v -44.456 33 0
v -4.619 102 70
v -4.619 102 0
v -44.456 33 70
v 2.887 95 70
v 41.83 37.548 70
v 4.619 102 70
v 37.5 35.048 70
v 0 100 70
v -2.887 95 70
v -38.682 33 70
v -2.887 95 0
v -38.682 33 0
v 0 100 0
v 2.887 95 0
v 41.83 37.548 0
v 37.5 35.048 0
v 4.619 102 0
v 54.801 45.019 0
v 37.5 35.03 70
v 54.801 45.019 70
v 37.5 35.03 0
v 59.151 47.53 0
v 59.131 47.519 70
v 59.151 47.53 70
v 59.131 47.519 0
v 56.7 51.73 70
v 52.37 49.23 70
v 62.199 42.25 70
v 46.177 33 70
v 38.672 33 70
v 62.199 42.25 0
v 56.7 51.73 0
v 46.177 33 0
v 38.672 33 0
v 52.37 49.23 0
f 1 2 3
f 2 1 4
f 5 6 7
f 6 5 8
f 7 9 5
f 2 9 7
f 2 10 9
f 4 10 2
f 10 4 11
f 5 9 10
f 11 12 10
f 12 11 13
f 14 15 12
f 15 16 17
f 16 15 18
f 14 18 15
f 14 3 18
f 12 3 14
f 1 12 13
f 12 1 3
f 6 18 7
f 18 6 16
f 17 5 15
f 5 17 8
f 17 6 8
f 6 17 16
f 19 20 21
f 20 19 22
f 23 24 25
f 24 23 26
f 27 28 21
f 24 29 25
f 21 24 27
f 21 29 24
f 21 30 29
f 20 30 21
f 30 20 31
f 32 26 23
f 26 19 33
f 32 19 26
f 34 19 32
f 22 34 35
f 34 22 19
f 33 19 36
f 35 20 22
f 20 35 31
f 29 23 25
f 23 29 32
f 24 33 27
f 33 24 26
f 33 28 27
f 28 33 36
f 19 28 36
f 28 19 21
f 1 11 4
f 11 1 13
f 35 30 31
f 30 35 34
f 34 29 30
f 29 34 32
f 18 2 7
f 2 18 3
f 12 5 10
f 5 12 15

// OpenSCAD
module yun(){
translate([0,100,0])
rotate(a=[0,0,-30])
translate([-5,-85,0])
cube([5,90,70]);


translate([0,100,0])
rotate(a=[0,0,30])
translate([0,-75,0])
cube([5,80,70]);

translate([40,30.7,0])
rotate(a=[0,0,-60])
translate([-5,0,0])
cube([15,25,70]);

translate([59.2,47.4,0])
rotate(a=[0,0,30])
translate([-5,0,0])
cube([5,5,70]);
    
}
difference(){
    yun();
    translate([-100,22,-0.5])
    cube([200,11,71]);
translate([45,15,-0.5])
rotate(a=[0,0,30])
cube([30,15,71]);
translate([-5,102,-0.5])
cube([10,10,71]);
}

translate([-5,95,0])
cube([10,5,70]);
